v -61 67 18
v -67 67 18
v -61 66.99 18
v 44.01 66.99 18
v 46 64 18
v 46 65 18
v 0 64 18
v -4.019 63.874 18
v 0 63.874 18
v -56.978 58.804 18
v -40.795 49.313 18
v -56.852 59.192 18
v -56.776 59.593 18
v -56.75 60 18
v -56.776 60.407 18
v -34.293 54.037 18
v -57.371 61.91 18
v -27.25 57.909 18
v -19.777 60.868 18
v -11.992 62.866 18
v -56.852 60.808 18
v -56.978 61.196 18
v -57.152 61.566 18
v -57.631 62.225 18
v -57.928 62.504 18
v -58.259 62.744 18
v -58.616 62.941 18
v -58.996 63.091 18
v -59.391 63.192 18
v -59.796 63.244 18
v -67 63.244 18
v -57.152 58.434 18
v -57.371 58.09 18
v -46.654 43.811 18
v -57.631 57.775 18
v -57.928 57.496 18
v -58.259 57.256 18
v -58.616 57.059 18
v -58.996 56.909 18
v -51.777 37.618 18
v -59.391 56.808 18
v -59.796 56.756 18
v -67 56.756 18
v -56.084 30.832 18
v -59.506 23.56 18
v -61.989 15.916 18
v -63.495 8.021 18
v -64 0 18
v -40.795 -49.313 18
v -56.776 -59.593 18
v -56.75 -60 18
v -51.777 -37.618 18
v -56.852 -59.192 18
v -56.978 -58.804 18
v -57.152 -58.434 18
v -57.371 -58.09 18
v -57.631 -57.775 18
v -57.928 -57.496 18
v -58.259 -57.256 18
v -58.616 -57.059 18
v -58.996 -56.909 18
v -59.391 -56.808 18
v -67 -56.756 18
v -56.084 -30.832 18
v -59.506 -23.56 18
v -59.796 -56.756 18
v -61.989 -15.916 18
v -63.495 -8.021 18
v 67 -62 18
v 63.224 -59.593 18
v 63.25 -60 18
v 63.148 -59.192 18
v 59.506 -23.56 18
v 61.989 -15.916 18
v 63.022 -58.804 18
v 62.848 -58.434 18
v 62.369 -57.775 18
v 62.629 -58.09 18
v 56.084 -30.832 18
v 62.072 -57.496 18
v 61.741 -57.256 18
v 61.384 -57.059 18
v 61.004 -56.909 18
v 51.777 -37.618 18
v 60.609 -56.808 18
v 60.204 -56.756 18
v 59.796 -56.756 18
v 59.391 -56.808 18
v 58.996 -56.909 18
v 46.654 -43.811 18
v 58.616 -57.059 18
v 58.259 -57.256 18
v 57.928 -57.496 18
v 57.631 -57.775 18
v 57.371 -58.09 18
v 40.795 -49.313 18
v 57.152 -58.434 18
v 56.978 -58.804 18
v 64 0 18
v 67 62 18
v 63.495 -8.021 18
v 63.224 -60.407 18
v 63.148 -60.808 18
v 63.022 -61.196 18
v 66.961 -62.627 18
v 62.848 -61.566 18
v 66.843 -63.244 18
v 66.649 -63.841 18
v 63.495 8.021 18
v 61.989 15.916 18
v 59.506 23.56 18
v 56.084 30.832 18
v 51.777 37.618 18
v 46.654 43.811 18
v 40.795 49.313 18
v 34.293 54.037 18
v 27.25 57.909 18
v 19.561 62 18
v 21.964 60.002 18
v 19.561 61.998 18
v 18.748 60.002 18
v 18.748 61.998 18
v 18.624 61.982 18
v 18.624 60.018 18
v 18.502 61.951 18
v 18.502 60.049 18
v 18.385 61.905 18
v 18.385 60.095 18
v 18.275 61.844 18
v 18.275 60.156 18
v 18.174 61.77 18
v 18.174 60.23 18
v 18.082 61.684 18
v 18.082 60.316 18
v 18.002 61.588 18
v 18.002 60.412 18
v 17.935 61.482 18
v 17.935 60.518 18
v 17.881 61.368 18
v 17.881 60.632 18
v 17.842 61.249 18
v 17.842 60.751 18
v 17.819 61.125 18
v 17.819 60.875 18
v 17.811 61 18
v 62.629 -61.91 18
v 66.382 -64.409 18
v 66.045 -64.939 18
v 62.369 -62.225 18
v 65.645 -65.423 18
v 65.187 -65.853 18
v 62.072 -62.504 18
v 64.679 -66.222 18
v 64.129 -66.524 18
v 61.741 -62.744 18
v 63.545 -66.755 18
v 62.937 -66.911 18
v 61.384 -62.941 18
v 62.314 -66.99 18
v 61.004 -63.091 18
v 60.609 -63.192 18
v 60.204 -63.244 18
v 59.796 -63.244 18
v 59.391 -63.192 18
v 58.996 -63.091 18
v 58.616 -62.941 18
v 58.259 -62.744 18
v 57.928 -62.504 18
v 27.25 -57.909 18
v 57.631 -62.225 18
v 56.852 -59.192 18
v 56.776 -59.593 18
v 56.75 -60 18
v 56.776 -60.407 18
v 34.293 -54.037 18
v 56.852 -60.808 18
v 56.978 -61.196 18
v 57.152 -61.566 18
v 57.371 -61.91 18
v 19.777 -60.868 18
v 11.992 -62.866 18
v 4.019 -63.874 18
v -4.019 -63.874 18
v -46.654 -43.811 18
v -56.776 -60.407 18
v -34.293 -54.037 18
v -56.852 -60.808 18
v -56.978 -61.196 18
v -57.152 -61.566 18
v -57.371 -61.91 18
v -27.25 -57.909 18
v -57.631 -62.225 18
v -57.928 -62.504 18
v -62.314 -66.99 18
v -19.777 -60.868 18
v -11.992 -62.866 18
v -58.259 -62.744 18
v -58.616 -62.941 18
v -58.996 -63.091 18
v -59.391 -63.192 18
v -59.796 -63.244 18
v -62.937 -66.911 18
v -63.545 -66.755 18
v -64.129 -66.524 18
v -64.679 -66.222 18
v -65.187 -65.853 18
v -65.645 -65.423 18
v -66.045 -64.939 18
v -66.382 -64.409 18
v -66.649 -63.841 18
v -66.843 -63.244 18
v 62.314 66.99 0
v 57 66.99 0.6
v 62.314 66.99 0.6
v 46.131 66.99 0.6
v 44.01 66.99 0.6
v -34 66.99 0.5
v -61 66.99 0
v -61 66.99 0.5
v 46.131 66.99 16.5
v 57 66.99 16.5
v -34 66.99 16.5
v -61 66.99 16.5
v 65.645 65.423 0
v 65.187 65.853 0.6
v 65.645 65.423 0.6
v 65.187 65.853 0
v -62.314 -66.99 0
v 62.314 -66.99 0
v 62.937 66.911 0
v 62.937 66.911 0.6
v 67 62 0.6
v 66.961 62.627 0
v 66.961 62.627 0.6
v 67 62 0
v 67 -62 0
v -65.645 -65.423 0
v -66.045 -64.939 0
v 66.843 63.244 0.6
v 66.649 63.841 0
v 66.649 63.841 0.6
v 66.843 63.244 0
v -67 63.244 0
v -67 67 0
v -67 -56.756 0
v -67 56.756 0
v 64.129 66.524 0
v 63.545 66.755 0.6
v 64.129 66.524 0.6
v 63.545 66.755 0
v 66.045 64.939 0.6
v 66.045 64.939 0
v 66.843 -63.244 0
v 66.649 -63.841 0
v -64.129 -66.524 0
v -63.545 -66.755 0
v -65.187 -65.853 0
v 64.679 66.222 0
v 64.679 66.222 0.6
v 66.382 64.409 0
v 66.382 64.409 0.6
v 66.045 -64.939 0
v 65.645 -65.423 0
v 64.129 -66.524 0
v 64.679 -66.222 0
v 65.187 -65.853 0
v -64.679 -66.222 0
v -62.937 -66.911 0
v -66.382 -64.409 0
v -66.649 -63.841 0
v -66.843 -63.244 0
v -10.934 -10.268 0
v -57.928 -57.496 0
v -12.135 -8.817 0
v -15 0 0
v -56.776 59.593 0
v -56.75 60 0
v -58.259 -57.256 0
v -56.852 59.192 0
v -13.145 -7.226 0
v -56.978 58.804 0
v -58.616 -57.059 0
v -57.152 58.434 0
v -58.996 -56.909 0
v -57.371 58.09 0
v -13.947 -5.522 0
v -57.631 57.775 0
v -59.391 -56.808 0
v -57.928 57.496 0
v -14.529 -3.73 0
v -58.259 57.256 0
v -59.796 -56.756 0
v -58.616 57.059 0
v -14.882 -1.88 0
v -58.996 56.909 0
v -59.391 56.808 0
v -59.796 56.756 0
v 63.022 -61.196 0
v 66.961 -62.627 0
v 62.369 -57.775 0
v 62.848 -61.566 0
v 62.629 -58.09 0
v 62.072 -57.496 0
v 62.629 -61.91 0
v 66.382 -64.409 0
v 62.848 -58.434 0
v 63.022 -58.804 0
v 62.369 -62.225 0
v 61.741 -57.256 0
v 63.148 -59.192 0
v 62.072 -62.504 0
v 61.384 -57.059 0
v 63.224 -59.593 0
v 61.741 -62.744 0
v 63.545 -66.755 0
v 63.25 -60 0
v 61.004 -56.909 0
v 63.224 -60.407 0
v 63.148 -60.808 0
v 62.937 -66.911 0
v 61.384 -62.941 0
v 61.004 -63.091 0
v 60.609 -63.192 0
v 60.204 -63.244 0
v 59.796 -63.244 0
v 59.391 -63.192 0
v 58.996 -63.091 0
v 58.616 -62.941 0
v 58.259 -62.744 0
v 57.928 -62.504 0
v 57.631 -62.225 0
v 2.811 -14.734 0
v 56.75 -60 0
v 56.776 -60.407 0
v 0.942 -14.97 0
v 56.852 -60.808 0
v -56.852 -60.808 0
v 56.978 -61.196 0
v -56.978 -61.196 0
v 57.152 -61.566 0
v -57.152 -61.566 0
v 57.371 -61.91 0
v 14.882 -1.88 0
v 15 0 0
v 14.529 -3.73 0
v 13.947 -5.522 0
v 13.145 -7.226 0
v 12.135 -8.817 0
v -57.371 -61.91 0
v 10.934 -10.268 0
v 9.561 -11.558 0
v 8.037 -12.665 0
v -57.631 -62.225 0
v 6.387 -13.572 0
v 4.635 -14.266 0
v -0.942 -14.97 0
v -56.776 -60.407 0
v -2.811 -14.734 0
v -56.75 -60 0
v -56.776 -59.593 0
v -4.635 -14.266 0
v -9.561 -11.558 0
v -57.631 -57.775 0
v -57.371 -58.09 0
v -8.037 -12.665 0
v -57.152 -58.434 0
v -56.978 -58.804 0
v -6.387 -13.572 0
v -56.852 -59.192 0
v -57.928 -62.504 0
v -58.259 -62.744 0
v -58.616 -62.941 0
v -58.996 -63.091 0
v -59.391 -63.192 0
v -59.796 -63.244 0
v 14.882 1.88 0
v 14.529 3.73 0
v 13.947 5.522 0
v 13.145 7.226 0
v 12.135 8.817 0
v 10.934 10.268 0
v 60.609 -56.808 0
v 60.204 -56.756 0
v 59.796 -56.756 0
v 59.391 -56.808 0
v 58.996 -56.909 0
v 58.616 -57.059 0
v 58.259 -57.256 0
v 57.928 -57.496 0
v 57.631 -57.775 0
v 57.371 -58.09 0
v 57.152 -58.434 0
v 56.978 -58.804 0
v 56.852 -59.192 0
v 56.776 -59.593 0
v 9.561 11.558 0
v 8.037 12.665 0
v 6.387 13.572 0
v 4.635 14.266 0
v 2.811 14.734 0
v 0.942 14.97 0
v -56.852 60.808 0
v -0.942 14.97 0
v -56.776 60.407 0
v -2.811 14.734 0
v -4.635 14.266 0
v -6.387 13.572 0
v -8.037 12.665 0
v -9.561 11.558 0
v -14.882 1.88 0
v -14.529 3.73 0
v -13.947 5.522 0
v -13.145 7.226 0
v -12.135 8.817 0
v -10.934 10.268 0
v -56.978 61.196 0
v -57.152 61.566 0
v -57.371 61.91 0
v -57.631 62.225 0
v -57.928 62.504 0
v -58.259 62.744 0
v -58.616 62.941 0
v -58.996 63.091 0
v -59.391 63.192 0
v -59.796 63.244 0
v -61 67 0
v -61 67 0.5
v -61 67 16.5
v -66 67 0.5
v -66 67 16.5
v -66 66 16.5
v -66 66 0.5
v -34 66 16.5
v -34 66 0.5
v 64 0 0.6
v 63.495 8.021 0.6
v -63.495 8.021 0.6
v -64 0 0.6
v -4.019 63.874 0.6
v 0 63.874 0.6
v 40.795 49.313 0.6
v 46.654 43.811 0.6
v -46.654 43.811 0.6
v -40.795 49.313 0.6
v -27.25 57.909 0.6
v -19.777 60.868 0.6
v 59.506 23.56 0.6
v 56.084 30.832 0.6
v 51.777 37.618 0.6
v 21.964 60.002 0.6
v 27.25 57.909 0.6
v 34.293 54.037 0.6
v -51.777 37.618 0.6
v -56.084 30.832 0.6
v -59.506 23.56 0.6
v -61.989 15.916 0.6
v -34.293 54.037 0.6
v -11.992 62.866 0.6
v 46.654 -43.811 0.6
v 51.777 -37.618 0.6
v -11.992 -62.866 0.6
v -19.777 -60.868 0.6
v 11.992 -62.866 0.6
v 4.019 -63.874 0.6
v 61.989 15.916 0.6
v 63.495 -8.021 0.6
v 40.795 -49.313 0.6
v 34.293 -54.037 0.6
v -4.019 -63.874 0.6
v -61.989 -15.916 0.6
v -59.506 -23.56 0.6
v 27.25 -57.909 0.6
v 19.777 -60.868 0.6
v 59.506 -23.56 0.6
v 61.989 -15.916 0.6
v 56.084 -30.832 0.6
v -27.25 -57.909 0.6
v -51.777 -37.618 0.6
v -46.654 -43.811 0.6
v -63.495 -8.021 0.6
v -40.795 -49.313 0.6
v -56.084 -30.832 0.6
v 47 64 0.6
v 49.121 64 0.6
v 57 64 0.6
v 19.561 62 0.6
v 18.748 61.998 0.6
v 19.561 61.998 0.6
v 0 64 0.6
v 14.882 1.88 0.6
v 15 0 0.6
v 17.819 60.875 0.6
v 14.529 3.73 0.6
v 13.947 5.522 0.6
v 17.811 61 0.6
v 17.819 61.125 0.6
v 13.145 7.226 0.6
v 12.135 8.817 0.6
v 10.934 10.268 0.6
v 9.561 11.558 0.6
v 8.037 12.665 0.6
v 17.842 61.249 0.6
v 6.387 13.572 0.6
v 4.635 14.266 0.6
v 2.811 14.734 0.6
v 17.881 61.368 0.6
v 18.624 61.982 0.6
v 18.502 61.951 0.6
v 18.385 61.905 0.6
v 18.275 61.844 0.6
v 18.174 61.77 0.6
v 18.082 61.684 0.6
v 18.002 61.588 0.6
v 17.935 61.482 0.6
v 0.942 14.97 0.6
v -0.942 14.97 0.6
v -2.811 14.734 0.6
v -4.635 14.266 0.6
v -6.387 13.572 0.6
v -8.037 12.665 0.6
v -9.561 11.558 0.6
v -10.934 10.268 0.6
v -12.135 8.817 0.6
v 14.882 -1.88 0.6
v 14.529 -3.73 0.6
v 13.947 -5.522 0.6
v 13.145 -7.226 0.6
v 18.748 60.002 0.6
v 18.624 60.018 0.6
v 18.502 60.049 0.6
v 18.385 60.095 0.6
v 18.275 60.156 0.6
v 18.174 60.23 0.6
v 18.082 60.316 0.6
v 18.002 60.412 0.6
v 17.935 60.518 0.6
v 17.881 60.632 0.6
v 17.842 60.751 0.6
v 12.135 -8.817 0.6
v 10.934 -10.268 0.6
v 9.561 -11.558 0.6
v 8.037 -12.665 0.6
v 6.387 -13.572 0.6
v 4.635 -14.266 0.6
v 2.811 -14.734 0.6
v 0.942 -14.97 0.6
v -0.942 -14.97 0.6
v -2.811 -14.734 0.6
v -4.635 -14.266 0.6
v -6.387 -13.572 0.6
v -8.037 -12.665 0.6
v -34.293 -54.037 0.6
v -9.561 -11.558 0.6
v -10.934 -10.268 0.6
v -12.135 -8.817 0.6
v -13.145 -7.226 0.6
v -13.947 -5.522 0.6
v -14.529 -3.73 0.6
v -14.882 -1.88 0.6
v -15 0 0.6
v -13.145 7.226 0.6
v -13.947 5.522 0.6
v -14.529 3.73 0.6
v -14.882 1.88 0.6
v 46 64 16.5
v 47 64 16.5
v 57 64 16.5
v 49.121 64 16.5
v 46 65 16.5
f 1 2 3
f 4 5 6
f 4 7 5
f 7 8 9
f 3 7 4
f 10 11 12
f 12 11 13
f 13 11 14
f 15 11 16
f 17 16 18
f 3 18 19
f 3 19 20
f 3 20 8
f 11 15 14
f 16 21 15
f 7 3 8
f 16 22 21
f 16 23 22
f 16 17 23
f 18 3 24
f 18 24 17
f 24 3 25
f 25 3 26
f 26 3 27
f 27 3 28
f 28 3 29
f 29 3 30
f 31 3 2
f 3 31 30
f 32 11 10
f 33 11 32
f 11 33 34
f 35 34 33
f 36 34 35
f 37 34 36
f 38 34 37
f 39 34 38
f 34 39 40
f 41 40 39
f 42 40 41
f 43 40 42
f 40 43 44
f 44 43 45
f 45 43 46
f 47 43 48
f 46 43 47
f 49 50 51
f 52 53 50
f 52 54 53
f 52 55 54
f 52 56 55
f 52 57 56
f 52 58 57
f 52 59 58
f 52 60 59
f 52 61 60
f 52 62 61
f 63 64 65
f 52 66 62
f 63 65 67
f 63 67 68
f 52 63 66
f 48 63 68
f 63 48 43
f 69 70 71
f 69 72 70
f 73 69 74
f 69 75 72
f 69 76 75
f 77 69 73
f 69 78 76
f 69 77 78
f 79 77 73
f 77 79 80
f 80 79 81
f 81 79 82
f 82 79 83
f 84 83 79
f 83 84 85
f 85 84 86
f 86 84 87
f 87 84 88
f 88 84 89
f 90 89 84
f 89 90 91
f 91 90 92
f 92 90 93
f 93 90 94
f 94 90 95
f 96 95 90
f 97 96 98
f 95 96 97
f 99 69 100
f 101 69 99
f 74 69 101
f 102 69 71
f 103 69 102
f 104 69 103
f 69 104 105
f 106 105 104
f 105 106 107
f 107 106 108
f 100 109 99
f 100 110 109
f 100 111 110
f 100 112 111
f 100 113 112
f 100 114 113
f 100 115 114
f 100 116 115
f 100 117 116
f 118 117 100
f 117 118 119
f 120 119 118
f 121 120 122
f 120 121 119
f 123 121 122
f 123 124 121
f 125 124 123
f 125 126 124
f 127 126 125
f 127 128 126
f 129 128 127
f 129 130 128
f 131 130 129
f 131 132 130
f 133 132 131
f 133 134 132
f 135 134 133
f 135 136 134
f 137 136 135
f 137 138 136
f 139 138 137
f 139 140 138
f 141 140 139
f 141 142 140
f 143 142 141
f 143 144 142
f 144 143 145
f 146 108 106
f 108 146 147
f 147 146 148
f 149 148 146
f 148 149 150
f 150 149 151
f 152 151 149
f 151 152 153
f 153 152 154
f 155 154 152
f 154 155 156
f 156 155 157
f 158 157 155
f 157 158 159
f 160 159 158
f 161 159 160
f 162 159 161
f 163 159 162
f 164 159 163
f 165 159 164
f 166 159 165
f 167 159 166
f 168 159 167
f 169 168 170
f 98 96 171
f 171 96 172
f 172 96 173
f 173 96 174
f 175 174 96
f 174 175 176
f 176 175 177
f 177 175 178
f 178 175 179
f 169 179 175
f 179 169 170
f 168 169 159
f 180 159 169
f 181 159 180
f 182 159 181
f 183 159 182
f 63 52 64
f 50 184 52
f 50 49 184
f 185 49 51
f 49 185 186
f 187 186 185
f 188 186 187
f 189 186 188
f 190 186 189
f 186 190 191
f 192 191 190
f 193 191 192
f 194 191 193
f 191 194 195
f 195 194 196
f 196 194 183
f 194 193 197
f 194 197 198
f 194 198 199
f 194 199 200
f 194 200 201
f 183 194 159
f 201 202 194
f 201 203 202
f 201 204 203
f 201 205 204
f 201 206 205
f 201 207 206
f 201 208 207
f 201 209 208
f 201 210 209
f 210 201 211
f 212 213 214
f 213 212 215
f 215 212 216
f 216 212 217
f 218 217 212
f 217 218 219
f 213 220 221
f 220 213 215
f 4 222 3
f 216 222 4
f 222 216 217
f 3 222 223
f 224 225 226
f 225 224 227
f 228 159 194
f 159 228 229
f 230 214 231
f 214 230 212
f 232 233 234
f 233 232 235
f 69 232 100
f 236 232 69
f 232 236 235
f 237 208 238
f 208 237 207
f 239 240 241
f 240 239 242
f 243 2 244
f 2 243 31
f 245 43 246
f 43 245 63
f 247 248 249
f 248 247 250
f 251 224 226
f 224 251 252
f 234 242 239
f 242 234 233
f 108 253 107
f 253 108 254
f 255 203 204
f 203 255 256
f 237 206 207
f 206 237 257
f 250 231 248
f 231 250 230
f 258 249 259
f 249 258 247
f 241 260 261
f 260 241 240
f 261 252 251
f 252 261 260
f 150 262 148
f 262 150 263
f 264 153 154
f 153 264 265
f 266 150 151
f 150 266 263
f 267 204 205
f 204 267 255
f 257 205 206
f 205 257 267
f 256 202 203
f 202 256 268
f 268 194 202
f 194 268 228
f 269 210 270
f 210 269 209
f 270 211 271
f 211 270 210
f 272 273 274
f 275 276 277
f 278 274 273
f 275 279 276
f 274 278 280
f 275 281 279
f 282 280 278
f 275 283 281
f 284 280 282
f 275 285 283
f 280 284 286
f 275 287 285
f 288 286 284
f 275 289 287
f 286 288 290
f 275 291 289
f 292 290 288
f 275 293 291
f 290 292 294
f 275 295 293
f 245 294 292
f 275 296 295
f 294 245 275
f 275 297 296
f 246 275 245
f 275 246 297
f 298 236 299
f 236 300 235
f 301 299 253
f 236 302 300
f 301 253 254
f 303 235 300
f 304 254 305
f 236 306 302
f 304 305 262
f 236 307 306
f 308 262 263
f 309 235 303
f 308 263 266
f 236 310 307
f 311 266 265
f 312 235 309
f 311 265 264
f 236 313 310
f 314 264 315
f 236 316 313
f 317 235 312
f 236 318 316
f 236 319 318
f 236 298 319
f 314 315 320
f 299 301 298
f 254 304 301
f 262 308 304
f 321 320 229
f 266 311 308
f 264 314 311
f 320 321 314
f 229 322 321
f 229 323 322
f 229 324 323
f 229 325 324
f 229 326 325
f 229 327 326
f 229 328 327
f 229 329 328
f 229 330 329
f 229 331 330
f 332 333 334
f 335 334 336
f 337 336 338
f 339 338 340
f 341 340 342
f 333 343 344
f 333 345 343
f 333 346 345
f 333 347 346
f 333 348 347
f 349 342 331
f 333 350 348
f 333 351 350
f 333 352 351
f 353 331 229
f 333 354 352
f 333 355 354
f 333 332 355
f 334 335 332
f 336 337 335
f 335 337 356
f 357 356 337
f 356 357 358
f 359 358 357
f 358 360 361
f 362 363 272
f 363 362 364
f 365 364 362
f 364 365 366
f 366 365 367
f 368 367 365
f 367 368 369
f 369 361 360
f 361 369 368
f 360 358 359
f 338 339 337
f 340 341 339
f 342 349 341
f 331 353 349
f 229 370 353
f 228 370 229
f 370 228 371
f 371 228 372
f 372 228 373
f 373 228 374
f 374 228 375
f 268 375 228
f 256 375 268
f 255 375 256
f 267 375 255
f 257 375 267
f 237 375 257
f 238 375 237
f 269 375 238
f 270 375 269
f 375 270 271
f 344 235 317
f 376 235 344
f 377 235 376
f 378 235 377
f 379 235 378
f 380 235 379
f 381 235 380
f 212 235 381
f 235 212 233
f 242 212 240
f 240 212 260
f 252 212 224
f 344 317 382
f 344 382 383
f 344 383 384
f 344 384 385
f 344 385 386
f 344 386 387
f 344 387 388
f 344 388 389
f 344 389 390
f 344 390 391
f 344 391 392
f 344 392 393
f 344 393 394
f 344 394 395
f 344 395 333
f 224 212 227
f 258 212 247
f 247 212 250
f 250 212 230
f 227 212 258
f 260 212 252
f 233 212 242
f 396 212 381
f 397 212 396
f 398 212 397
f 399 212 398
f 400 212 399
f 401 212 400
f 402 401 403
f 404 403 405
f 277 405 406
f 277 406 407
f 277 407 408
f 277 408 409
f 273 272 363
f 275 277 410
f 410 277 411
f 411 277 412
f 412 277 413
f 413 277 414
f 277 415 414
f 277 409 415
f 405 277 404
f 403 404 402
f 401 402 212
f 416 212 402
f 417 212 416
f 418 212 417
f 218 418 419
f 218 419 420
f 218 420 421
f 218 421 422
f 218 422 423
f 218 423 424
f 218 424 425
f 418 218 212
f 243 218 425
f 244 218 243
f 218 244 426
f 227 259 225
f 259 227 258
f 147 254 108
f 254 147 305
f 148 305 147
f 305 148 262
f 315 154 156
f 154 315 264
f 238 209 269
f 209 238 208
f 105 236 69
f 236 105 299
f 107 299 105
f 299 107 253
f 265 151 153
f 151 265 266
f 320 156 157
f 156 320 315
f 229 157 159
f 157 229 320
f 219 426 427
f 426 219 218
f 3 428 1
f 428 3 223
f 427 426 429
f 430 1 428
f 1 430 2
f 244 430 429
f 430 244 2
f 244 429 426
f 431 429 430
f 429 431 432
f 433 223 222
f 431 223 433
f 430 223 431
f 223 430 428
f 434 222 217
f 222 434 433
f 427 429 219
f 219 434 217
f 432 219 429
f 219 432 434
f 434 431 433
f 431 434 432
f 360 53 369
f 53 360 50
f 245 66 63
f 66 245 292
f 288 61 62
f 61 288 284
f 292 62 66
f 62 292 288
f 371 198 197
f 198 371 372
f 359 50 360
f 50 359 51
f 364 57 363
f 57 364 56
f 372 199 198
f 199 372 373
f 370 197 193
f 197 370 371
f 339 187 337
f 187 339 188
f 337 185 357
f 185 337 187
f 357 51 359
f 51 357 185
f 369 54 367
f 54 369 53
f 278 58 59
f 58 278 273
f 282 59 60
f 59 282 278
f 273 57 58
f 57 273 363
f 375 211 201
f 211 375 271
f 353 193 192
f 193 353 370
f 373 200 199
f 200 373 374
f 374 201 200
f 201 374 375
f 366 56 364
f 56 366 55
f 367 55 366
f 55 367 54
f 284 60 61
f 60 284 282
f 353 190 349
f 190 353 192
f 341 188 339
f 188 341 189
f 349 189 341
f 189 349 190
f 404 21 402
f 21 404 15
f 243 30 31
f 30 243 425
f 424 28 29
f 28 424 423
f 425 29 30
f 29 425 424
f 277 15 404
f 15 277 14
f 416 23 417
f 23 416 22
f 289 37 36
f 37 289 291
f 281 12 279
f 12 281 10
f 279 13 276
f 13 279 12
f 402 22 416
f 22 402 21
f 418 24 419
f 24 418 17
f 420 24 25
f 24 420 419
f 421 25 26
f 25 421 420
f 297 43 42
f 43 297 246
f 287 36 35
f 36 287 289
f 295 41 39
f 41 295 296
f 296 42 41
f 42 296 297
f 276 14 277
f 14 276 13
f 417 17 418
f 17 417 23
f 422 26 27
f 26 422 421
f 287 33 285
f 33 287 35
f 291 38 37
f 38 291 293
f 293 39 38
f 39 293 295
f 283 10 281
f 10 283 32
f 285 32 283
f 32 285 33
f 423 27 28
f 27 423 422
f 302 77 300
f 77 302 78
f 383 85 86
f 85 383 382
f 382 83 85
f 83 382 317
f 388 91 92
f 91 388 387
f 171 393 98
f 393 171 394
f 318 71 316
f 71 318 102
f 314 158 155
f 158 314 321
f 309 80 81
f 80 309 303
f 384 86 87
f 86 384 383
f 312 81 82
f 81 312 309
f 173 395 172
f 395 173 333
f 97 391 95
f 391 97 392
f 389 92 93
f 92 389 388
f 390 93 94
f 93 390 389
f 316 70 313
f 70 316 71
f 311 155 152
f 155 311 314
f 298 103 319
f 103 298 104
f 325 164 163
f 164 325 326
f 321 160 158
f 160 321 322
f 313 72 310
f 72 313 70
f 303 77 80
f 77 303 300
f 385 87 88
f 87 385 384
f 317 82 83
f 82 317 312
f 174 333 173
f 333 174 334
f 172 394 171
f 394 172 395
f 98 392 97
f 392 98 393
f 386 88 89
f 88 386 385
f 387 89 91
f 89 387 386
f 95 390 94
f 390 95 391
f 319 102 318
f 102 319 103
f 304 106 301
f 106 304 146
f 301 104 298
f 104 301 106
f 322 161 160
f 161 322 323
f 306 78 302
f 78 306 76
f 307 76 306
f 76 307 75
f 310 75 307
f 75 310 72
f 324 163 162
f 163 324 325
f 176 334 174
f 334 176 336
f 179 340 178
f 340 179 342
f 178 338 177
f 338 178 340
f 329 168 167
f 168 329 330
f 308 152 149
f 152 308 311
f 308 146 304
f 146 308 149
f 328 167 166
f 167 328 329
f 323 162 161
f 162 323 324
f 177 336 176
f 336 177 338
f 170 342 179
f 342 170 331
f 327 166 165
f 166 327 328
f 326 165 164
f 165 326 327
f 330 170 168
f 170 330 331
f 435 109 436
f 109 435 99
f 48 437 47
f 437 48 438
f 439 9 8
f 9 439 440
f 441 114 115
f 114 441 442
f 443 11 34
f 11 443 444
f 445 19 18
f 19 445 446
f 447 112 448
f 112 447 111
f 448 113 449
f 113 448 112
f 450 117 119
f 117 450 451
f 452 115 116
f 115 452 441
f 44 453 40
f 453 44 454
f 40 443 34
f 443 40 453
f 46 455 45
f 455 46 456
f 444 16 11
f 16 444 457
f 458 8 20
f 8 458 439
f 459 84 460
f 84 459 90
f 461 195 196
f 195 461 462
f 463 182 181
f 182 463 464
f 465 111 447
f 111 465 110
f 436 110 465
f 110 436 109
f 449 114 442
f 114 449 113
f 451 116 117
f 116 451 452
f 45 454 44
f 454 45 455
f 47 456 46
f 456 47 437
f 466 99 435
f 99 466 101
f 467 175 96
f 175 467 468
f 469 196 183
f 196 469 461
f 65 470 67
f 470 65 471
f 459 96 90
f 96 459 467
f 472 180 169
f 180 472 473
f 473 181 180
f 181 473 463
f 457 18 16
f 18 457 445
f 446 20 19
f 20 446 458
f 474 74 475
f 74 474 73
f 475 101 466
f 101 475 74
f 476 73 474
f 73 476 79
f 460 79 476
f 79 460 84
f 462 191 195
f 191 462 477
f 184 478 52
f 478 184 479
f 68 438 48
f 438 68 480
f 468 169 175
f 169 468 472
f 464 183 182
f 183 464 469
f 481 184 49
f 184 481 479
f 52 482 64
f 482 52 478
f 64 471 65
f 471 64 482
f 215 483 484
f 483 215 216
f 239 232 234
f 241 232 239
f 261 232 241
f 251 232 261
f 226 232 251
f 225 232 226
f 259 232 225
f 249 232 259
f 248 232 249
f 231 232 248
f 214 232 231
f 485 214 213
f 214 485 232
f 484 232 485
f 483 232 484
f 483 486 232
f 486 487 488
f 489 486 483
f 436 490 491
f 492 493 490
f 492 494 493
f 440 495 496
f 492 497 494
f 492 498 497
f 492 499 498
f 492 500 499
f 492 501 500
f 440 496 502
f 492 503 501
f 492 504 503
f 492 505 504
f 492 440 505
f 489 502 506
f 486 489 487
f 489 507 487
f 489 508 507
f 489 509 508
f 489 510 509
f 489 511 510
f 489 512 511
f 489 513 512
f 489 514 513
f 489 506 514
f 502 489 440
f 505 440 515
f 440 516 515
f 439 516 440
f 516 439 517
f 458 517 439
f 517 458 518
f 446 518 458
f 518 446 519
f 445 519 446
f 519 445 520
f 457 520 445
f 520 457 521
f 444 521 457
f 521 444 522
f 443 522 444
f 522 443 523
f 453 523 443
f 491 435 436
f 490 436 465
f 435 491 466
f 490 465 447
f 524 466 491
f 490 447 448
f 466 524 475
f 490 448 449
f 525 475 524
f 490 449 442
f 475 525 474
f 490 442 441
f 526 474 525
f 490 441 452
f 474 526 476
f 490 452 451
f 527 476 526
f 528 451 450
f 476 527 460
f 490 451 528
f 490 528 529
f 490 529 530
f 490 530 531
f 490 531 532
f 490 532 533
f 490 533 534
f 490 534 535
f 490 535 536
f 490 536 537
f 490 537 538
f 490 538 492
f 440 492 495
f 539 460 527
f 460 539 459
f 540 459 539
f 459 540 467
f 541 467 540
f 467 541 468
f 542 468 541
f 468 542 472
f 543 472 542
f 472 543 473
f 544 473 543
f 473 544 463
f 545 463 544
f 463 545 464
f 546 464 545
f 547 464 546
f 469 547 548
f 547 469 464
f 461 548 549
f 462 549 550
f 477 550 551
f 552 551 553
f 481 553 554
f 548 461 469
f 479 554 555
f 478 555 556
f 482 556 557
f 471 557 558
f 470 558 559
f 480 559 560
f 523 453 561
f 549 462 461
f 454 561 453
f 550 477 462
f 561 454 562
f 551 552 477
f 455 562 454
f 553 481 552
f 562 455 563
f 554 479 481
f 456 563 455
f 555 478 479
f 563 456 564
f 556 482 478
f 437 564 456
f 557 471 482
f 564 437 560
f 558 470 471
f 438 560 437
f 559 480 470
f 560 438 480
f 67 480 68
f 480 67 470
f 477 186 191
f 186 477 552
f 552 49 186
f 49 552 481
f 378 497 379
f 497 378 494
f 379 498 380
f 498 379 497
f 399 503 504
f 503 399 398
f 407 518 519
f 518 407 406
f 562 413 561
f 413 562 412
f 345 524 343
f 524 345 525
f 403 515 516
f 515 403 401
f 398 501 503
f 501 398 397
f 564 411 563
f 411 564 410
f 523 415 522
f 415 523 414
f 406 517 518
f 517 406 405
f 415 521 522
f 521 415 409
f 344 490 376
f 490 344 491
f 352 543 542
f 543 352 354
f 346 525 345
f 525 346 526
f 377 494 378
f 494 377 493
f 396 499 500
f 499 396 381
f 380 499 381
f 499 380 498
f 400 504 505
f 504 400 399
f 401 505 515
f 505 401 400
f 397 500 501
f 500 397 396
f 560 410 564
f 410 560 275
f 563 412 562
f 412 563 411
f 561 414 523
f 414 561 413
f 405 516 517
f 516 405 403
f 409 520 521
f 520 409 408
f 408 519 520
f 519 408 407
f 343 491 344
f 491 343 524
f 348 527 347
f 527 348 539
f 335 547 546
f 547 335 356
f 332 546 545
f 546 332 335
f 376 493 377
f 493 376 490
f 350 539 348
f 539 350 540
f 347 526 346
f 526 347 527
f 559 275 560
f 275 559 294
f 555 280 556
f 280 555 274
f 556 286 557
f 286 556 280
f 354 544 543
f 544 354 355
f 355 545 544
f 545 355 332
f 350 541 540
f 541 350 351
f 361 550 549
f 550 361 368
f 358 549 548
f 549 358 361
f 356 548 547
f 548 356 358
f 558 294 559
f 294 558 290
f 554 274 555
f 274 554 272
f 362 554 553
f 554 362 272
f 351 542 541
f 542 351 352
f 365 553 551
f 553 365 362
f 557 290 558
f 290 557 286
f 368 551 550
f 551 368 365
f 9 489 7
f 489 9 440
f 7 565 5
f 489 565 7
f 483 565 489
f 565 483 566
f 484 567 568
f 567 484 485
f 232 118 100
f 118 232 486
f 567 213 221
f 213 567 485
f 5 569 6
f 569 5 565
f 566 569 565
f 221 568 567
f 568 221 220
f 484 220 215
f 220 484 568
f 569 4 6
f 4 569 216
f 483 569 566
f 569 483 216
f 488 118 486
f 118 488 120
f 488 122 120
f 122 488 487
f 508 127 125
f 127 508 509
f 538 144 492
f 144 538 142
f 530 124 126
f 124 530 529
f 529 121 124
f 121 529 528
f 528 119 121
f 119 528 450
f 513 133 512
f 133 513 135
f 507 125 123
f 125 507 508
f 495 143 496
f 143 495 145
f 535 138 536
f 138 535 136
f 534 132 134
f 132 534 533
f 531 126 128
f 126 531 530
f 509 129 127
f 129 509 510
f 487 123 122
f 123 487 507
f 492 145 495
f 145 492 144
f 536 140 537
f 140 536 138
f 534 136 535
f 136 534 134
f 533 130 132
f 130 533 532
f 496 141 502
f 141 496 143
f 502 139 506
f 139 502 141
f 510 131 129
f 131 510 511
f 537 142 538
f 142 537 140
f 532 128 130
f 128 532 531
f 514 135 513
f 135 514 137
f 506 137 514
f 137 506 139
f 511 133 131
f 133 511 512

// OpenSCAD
$fn = 50;


union() {
	difference() {
		union() {
			translate(v = [0, 0, 0]) {
				rotate(a = [0, 0, 0]) {
					hull() {
						translate(v = [-62.0000000000, 62.0000000000, 0]) {
							rotate(a = [0, 0, 0]) {
								translate(v = [0, 0, 0]) {
									rotate(a = [0, 0, 0]) {
										cylinder(h = 18, r = 5);
									}
								}
							}
						}
						translate(v = [62.0000000000, 62.0000000000, 0]) {
							rotate(a = [0, 0, 0]) {
								translate(v = [0, 0, 0]) {
									rotate(a = [0, 0, 0]) {
										cylinder(h = 18, r = 5);
									}
								}
							}
						}
						translate(v = [-62.0000000000, -62.0000000000, 0]) {
							rotate(a = [0, 0, 0]) {
								translate(v = [0, 0, 0]) {
									rotate(a = [0, 0, 0]) {
										cylinder(h = 18, r = 5);
									}
								}
							}
						}
						translate(v = [62.0000000000, -62.0000000000, 0]) {
							rotate(a = [0, 0, 0]) {
								translate(v = [0, 0, 0]) {
									rotate(a = [0, 0, 0]) {
										cylinder(h = 18, r = 5);
									}
								}
							}
						}
					}
				}
			}
			translate(v = [-67.0000000000, 61.0000000000, 0]) {
				rotate(a = [0, 0, 0]) {
					cube(size = [6, 6, 18]);
				}
			}
		}
		union() {
			#translate(v = [-66.0000000000, 66.0000000000, 0.5000000000]) {
				rotate(a = [0, 0, 0]) {
					cube(size = [32, 1, 16]);
				}
			}
			translate(v = [-67.5000000000, -60.0000000000, -125]) {
				rotate(a = [0, 0, 0]) {
					hull() {
						translate(v = [7.5000000000, 0, 0]) {
							rotate(a = [0, 0, 0]) {
								translate(v = [0, 0, 0]) {
									rotate(a = [0, 0, 0]) {
										cylinder(h = 250, r = 3.2500000000);
									}
								}
							}
						}
						translate(v = [-7.5000000000, 0, 0]) {
							rotate(a = [0, 0, 0]) {
								translate(v = [0, 0, 0]) {
									rotate(a = [0, 0, 0]) {
										cylinder(h = 250, r = 3.2500000000);
									}
								}
							}
						}
					}
				}
			}
			translate(v = [-67.5000000000, 60.0000000000, -125]) {
				rotate(a = [0, 0, 0]) {
					hull() {
						translate(v = [7.5000000000, 0, 0]) {
							rotate(a = [0, 0, 0]) {
								translate(v = [0, 0, 0]) {
									rotate(a = [0, 0, 0]) {
										cylinder(h = 250, r = 3.2500000000);
									}
								}
							}
						}
						translate(v = [-7.5000000000, 0, 0]) {
							rotate(a = [0, 0, 0]) {
								translate(v = [0, 0, 0]) {
									rotate(a = [0, 0, 0]) {
										cylinder(h = 250, r = 3.2500000000);
									}
								}
							}
						}
					}
				}
			}
			translate(v = [60.0000000000, -60.0000000000, -125.0000000000]) {
				rotate(a = [0, 0, 0]) {
					cylinder(h = 250, r = 3.2500000000);
				}
			}
			translate(v = [0, 0, 0.6000000000]) {
				rotate(a = [0, 0, 0]) {
					cylinder(h = 20.4000000000, r = 64.0000000000);
				}
			}
			translate(v = [0, 0, -9.0000000000]) {
				rotate(a = [0, 0, 0]) {
					cylinder(h = 18, r = 15.0000000000);
				}
			}
			translate(v = [0.0000000000, 62.0000000000, 0.6000000000]) {
				rotate(a = [0, 0, 0]) {
					cube(size = [67.0000000000, 2, 20.4000000000]);
				}
			}
			translate(v = [57.0000000000, 62.0000000000, 0.6000000000]) {
				rotate(a = [0, 0, 0]) {
					cube(size = [10, 5, 20.4000000000]);
				}
			}
			translate(v = [46.0000000000, 62.0000000000, 16.5000000000]) {
				rotate(a = [0, 0, 0]) {
					cube(size = [21, 5, 1.5000000000]);
				}
			}
			translate(v = [43.2500000000, 67.7500000000, 0.6000000000]) {
				rotate(a = [0, 0, -45]) {
					cube(size = [7.5000000000, 1.5000000000, 20.4000000000]);
				}
			}
			translate(v = [12.0610000000, 60.0000000000, 0.6000000000]) {
				rotate(a = [0, 0, 0]) {
					cube(size = [7.5000000000, 2, 17.4000000000]);
				}
			}
		}
	}
	union() {
		translate(v = [21.3110000000, 61.0000000000, 0]) {
			rotate(a = [0, 0, 0]) {
				hull() {
					translate(v = [2.5000000000, 0, 0]) {
						rotate(a = [0, 0, 0]) {
							#translate(v = [0, 0, 0]) {
								rotate(a = [0, 0, 0]) {
									cylinder(h = 18, r = 1.0000000000);
								}
							}
						}
					}
					translate(v = [-2.5000000000, 0, 0]) {
						rotate(a = [0, 0, 0]) {
							#translate(v = [0, 0, 0]) {
								rotate(a = [0, 0, 0]) {
									cylinder(h = 18, r = 1.0000000000);
								}
							}
						}
					}
				}
			}
		}
	}
}
